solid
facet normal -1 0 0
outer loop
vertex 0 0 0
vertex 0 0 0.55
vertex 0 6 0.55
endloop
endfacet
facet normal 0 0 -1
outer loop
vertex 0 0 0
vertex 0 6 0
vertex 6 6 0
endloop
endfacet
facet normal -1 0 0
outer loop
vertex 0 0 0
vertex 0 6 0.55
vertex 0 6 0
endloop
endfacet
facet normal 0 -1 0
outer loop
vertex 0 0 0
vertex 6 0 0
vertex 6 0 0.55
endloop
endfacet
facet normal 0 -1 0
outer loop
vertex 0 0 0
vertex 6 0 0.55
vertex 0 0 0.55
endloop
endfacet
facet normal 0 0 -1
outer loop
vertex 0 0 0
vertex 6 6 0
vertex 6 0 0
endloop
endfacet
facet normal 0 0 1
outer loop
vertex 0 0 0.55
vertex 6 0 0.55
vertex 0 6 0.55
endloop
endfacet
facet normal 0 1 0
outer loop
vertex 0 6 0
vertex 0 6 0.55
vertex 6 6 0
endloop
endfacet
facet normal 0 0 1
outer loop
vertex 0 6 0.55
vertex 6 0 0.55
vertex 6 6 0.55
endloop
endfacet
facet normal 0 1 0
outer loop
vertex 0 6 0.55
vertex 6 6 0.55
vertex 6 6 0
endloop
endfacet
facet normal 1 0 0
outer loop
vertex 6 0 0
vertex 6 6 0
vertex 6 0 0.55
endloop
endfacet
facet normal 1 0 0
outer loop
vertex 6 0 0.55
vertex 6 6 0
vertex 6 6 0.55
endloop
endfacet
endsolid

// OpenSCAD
/* Warning, this is a very basic generator with a lot of approximation 
input data : [UQFN, 2NX, 6x6x0.55mm, 28, , C, C04-00385C]
generated by com.zoubworld.electronics.cad.model3d.Basic
Date : Sun Feb 15 10:50:48 CET 2026
*/

//body
color("black")
translate([0,0,0])
cube([6.0,6.0,0.55], center=false);
